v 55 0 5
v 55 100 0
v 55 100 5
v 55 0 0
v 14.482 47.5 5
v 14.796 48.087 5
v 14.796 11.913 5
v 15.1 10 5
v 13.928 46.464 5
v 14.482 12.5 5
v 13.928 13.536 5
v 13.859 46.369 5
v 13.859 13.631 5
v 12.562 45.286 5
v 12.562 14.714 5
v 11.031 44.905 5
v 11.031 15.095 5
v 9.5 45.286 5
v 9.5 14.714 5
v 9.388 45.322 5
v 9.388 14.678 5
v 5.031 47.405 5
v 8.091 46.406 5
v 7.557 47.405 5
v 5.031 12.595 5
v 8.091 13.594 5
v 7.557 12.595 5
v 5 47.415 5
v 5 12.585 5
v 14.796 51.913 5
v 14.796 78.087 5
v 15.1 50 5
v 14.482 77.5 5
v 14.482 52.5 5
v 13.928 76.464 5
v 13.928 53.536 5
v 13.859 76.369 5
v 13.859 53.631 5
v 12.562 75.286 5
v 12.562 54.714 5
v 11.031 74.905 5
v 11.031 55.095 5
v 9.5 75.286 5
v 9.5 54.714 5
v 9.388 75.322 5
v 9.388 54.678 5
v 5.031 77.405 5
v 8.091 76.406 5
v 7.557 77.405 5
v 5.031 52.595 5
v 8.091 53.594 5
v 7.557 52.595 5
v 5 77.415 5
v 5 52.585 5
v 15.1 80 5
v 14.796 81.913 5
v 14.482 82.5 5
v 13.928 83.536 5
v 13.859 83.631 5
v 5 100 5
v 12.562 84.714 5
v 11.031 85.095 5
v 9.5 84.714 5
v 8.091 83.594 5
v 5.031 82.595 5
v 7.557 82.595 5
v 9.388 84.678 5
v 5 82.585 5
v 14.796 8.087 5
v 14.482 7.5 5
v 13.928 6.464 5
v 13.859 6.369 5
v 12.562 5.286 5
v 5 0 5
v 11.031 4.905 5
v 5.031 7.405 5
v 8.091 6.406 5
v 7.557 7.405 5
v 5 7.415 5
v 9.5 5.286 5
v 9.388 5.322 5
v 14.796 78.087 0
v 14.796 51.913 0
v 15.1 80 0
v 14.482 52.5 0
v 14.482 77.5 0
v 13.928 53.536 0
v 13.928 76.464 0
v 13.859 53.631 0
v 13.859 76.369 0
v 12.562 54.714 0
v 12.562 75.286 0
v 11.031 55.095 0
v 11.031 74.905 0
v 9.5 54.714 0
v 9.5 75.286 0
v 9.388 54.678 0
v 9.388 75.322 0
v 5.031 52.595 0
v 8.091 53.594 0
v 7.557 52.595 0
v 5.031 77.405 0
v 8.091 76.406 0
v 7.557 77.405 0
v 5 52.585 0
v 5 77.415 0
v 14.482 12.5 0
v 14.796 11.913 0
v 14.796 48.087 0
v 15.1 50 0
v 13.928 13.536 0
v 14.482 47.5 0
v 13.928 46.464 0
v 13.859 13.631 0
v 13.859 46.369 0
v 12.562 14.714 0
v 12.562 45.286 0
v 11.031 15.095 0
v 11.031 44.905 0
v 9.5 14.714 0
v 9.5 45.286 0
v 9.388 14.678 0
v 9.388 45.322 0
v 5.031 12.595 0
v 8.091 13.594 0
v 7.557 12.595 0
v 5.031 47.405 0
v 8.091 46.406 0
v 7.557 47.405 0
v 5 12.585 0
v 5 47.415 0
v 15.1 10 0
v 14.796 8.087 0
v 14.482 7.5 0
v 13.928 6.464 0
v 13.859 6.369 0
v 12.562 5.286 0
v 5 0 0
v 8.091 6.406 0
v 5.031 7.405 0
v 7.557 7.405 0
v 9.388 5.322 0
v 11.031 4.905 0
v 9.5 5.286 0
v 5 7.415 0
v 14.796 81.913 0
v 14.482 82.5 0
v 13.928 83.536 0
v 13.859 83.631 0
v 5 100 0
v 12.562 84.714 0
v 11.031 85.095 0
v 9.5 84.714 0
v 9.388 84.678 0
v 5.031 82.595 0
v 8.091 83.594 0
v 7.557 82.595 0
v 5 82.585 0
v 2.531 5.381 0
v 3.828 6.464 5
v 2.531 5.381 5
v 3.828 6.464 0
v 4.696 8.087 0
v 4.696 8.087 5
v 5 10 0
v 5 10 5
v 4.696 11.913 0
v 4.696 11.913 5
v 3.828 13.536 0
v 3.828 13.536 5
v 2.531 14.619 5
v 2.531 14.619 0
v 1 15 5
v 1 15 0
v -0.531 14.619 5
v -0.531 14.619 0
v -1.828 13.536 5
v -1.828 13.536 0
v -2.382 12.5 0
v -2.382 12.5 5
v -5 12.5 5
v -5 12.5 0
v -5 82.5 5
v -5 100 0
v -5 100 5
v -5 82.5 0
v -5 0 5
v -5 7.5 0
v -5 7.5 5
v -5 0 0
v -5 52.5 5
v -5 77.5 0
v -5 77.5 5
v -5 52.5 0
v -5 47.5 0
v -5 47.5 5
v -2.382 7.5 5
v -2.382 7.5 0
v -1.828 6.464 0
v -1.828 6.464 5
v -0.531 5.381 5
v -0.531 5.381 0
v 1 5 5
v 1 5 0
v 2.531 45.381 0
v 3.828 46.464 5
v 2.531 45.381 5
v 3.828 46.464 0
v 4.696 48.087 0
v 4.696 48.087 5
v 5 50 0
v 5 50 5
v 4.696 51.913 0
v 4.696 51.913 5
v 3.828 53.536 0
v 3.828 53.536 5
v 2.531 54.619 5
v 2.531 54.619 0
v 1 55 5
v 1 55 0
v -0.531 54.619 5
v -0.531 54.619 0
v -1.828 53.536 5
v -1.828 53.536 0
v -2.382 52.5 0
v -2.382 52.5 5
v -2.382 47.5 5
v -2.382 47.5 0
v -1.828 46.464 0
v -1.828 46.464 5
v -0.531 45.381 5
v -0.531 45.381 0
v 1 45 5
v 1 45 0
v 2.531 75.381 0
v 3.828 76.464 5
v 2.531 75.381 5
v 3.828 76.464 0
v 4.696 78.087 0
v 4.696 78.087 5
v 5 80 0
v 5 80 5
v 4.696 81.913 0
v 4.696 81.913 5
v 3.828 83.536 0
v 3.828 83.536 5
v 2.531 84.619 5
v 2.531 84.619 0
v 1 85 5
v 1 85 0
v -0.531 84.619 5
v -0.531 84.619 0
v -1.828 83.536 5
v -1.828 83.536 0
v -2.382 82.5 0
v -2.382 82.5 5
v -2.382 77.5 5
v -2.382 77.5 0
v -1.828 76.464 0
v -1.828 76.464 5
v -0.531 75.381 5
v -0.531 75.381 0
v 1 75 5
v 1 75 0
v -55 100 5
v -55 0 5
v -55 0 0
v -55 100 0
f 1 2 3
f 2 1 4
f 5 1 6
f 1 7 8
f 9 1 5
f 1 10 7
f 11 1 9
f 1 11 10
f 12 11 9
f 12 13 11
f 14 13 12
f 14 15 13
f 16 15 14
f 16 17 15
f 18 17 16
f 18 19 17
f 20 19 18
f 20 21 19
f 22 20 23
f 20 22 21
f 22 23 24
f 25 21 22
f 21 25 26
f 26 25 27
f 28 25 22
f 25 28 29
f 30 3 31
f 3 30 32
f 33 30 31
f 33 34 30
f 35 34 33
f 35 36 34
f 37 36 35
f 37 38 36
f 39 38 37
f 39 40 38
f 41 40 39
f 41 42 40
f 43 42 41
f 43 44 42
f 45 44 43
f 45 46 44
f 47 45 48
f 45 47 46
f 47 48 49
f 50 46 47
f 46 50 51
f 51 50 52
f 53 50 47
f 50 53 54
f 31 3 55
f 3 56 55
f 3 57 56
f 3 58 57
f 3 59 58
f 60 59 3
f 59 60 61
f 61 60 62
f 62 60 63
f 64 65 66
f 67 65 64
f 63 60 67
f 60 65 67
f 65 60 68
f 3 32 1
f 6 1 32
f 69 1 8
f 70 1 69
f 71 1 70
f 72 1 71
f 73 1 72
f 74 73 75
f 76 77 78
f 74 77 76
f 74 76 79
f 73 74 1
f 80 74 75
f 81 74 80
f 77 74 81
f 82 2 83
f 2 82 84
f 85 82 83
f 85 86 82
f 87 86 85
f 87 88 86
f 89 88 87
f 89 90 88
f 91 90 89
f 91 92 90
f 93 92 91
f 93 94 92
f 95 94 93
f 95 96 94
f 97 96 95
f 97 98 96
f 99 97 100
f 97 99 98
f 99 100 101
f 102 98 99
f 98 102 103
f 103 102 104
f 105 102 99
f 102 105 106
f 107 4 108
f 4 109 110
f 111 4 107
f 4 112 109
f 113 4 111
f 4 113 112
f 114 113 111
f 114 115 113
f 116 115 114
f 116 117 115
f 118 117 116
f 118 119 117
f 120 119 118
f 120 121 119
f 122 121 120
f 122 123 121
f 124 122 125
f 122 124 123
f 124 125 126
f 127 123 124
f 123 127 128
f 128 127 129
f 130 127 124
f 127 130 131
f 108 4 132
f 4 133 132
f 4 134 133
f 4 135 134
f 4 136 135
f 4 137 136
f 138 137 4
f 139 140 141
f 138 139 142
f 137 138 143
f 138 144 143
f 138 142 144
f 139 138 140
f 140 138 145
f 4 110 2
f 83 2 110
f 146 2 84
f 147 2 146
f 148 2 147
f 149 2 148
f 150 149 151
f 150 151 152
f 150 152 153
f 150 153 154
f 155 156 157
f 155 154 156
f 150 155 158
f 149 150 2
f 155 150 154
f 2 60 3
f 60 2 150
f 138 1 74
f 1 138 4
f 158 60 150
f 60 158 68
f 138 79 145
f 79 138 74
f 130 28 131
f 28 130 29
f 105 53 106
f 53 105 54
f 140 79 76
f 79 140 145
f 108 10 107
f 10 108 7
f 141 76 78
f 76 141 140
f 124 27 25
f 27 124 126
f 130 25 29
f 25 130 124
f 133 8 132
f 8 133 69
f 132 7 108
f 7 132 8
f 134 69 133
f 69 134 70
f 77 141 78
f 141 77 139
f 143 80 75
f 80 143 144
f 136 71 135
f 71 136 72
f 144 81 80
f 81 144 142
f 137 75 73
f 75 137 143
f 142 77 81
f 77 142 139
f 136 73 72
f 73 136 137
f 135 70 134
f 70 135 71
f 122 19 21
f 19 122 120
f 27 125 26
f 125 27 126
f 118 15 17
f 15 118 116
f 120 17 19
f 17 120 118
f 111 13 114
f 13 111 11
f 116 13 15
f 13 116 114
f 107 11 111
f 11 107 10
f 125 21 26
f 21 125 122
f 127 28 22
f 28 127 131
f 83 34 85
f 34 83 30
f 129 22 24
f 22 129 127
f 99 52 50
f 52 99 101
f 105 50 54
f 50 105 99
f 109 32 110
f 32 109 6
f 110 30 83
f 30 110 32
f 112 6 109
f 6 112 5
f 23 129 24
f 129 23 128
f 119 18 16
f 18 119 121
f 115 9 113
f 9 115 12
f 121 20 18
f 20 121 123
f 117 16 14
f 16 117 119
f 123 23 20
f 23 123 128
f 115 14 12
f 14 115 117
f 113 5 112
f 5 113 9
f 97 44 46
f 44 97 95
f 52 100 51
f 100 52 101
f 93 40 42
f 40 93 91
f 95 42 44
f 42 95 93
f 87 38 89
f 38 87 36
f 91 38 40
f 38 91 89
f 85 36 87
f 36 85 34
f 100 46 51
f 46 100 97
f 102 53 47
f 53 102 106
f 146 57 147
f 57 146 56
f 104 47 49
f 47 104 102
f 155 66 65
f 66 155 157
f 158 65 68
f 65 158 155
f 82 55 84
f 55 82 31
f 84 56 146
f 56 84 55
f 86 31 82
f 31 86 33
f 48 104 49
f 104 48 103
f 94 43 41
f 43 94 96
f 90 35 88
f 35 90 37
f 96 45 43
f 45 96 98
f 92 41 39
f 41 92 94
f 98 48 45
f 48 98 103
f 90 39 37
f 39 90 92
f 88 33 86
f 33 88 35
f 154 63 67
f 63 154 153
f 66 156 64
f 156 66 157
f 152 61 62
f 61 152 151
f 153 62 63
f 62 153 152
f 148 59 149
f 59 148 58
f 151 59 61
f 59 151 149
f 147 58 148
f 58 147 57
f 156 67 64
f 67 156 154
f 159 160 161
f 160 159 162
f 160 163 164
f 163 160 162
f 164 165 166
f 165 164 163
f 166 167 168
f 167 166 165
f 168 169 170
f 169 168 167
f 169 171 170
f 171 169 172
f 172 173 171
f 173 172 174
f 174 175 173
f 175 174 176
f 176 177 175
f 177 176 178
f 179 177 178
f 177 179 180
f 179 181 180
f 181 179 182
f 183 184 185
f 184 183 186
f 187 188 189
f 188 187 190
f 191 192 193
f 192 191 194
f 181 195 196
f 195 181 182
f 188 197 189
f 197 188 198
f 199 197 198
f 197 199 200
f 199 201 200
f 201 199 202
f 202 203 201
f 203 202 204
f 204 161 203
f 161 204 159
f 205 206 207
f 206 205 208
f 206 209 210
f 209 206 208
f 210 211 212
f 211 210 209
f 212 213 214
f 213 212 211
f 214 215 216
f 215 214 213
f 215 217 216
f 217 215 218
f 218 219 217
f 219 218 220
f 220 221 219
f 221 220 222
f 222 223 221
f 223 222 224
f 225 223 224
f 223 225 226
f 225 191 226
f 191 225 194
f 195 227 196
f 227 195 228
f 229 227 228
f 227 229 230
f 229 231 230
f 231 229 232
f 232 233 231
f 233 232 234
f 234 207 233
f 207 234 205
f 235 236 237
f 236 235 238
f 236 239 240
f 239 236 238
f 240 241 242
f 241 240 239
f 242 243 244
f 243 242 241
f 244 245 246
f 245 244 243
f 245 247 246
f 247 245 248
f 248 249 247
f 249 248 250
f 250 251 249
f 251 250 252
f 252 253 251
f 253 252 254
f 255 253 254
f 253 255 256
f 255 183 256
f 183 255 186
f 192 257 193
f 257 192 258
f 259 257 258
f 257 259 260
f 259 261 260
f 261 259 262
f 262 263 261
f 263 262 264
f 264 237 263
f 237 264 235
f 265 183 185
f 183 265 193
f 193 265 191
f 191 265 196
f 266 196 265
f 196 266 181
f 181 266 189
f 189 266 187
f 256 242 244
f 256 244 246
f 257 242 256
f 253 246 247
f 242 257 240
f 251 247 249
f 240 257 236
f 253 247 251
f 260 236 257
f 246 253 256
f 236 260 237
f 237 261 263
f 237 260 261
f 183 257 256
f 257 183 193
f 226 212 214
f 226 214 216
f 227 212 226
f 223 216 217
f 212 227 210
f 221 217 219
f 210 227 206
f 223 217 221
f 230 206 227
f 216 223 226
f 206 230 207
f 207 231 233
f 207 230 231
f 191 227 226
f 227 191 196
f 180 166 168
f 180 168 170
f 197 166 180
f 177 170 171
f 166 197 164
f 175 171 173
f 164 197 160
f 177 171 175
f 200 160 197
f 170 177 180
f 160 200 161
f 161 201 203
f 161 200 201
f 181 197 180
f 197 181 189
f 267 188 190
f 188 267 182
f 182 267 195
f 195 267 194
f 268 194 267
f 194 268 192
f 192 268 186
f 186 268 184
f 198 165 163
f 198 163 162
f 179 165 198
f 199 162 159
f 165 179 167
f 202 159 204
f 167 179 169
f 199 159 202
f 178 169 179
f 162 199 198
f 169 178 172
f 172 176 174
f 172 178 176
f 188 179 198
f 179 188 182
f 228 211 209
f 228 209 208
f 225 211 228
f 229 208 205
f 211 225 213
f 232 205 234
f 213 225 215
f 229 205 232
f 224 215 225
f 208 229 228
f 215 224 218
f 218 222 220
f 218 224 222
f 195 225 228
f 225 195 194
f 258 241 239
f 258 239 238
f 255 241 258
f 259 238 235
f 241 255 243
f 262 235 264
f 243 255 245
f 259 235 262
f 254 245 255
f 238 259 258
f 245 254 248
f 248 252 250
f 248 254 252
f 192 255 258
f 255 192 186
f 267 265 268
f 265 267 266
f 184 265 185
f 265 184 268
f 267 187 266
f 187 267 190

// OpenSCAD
// file: ../cuts/leftright.scad
module LeftRight( apart, minX, maxX, minY, maxY, minZ, maxZ, y, play ) {
    yy = len(y) == 0 ? [ minY : ( maxY - minY ) / 10 : maxY ] : y;

    translate( [ apart/2, 0, 0 ] )
    Right( minX=minX, maxX=maxX, minY=minY, maxY=maxY, minZ=minZ, maxZ=maxZ, y=yy, play=play ) {
        children(0);
        children(1);
    };

    translate( [ -apart/2, 0, 0 ] )
    Left( minX=minX, maxX=maxX, minY=minY, maxY=maxY, minZ=minZ, maxZ=maxZ, y=yy, play=play ) {
        children(0);
        children(1);
    };
};

module Right( minX, maxX, minY, maxY, minZ, maxZ, y, play ) {
    difference() {
        intersection() {
            children(0);
            translate( [ 0, minY, minZ ] ) {
                cube( [ maxX, maxY - minY, maxZ - minZ ] );
            }
        };

        for( yy=y ) {
            translate( [ 0, yy, minZ ] ) {
                minkowski() {
                    linear_extrude( height = maxZ - minZ ) {
                        children(1);
                    };
                    sphere( r=play );
                }
            }
        }
    }
}

module Left( minX, maxX, minY, maxY, minZ, maxZ, y, play ) {
    difference() {
        children(0);
        difference() {
            translate( [ 0, minY, minZ ] ) {
                cube( [ maxX, maxY - minY, maxZ - minZ ] );
            };

            for( yy=y ) {
                translate( [ 0, yy, minZ ] ) {
                    linear_extrude( height = maxZ - minZ ) {
                        children(1);
                    }
                }
            }
        }
    }
}
// file: ../cuts/zigzag.scad
//
// Cuts a zigzag line (a bunch of equilateral triangles in a line).
//
// parameters:
// zig: the height of the triangle (x direction)
// zag: the length of the base of the triangle (y direction)
//

use <leftright.scad>

module ZigZag( zig=10, zag=10, apart=10, minX=-200, maxX=200, minY=-200, maxY=200, minZ=-200, maxZ=200, play=.1, y=[] ) {
    LeftRight( apart, minX, maxX, minY, maxY, minZ, maxZ, y=y, play=play ) {
        children(0);

        polygon( points=[
                [ 0, -zag/2 ],
                [ zig, 0 ],
                [ 0, zag/2 ],
                [ 0, 0 ]
        ] );
    };
};
// file: ../cuts/puzzle.scad
//
// Cuts into a puzzle-piece-like protrusion (and cavity).
//
// parameters:
// height: the height of the protrusion (x direction)
// width: the maximum width of the protrusion (y direction)
// base: the width of the stem of the protrusion (y direction)
// stem: the height of the stem of the protrusion to the center of the ellipsis (x direction)
//

use <leftright.scad>

module Puzzle( height=10, width=10, base=5, stem=6, apart=10, minX=-200, maxX=200, minY=-200, maxY=200, minZ=-200, maxZ=200, play=.1, y=[] ) {

    LeftRight( apart, minX, maxX, minY, maxY, minZ, maxZ, y=y, play=play ) {
        children(0);

        union() {
            translate( [ 0, -base/2, 0 ] )
            square( [ stem, base ] );

            translate( [ stem, 0, 0 ] )
            scale( [ ( height - stem) * 2 / width, 1, 0 ] ) {
                circle( d=width ); // looks clumsy but renders better
            }
        }
    };
};
// file: ../cuts/comb.scad
//
// Cuts a comb (a bunch of rectangles in a line).
//
// parameters:
// height: the height of the rectangle (x direction)
// width: the length of the base of the rectangle (y direction)
//

use <leftright.scad>

module Comb( height=5, width=5, apart=10, minX=-200, maxX=200, minY=-200, maxY=200, minZ=-200, maxZ=200, play=.1, y=[] ) {
    LeftRight( apart, minX, maxX, minY, maxY, minZ, maxZ, y=y, play=play ) {
        children(0);

        translate( [ 0, -width/2, 0, ] ) {
            square( size = [ height, width ] );
        };
    };
}
// main file
//
// Cut a simply cube.
//

use <../cuts/comb.scad>
use <../cuts/puzzle.scad>
use <../cuts/zigzag.scad>

module MyPart() {
    translate( [ -50, 0, 0 ] ) {
        cube( [ 100, 100, 5 ] );
    }
}

// Uncomment this for a comb cut
// Cut at the default locations
// Comb() {
//     MyPart();
// }

// Uncomment this for a comb cut
// Cut at the specified locations
// Comb( y=[ 20, 40, 80 ] ) {
//     MyPart();
// }

// Uncomment this for a zig-zag cut
// ZigZag( y = [ 10, 30 ] ) {
//     MyPart();
// }

// Uncomment this for a puzzle cut
Puzzle( y = [ 10, 50, 80 ] ) {
    MyPart();
}
